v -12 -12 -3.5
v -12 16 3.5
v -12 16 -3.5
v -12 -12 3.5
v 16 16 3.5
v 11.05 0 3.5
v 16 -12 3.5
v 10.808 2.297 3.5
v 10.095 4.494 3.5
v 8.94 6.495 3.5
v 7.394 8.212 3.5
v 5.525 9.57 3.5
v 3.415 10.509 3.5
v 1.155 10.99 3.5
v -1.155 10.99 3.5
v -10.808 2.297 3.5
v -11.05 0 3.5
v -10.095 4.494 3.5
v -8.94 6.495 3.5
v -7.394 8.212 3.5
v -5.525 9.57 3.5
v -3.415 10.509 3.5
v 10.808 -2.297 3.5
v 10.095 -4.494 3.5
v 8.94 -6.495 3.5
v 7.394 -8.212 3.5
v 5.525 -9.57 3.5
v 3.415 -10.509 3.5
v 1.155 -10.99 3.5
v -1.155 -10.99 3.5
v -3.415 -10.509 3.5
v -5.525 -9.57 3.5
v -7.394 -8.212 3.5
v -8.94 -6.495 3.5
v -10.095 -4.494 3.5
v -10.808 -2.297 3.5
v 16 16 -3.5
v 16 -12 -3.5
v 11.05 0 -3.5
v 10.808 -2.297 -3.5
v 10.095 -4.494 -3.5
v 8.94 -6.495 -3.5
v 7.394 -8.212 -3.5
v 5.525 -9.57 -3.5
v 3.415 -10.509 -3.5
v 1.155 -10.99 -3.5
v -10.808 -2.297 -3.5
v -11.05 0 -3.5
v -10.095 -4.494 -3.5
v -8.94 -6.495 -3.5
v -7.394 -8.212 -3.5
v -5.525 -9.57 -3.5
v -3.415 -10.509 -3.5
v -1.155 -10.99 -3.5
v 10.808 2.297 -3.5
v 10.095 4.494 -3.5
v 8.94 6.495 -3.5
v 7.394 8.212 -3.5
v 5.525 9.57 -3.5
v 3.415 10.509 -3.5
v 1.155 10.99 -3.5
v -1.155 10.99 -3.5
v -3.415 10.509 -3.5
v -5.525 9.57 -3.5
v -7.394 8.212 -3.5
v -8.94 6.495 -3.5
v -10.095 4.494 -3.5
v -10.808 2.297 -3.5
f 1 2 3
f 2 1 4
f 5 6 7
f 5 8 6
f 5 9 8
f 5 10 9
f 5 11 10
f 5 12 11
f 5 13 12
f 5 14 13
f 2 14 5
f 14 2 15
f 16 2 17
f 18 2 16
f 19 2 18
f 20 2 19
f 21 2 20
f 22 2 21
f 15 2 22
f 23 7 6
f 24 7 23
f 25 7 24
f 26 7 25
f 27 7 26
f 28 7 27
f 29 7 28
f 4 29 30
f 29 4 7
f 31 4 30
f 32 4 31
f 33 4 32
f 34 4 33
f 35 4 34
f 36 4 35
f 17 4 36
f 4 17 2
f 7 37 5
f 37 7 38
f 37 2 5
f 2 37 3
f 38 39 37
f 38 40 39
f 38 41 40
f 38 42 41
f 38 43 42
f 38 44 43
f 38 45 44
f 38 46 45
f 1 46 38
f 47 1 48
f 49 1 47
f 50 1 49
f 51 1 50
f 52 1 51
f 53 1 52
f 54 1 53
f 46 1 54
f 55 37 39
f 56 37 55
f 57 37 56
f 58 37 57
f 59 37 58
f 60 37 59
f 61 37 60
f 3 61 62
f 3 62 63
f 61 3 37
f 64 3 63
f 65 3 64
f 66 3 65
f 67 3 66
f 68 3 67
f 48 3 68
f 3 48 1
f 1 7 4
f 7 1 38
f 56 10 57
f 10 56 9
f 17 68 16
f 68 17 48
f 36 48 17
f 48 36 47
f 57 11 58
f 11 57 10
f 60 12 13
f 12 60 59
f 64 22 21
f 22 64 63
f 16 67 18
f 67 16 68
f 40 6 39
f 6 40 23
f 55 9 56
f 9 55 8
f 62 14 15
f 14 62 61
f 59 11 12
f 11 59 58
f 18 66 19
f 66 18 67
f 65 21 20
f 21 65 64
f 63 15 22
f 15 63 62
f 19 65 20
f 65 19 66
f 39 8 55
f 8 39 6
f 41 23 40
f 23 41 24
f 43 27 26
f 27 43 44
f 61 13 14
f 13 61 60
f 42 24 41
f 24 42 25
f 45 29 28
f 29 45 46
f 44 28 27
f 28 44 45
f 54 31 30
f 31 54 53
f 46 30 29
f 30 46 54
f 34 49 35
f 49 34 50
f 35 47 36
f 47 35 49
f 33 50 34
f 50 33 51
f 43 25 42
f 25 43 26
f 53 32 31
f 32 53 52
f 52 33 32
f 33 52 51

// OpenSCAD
////608 z axis holder/////

extra	=	2;

module bearing(){
	cylinder(d=22.1, h=7, center=true);
}


module z_stable(){
	translate([extra,extra,0]) cube([24+(extra*2),24+(extra*2),7], center=true);
}

difference(){
	z_stable();
	bearing();
}
